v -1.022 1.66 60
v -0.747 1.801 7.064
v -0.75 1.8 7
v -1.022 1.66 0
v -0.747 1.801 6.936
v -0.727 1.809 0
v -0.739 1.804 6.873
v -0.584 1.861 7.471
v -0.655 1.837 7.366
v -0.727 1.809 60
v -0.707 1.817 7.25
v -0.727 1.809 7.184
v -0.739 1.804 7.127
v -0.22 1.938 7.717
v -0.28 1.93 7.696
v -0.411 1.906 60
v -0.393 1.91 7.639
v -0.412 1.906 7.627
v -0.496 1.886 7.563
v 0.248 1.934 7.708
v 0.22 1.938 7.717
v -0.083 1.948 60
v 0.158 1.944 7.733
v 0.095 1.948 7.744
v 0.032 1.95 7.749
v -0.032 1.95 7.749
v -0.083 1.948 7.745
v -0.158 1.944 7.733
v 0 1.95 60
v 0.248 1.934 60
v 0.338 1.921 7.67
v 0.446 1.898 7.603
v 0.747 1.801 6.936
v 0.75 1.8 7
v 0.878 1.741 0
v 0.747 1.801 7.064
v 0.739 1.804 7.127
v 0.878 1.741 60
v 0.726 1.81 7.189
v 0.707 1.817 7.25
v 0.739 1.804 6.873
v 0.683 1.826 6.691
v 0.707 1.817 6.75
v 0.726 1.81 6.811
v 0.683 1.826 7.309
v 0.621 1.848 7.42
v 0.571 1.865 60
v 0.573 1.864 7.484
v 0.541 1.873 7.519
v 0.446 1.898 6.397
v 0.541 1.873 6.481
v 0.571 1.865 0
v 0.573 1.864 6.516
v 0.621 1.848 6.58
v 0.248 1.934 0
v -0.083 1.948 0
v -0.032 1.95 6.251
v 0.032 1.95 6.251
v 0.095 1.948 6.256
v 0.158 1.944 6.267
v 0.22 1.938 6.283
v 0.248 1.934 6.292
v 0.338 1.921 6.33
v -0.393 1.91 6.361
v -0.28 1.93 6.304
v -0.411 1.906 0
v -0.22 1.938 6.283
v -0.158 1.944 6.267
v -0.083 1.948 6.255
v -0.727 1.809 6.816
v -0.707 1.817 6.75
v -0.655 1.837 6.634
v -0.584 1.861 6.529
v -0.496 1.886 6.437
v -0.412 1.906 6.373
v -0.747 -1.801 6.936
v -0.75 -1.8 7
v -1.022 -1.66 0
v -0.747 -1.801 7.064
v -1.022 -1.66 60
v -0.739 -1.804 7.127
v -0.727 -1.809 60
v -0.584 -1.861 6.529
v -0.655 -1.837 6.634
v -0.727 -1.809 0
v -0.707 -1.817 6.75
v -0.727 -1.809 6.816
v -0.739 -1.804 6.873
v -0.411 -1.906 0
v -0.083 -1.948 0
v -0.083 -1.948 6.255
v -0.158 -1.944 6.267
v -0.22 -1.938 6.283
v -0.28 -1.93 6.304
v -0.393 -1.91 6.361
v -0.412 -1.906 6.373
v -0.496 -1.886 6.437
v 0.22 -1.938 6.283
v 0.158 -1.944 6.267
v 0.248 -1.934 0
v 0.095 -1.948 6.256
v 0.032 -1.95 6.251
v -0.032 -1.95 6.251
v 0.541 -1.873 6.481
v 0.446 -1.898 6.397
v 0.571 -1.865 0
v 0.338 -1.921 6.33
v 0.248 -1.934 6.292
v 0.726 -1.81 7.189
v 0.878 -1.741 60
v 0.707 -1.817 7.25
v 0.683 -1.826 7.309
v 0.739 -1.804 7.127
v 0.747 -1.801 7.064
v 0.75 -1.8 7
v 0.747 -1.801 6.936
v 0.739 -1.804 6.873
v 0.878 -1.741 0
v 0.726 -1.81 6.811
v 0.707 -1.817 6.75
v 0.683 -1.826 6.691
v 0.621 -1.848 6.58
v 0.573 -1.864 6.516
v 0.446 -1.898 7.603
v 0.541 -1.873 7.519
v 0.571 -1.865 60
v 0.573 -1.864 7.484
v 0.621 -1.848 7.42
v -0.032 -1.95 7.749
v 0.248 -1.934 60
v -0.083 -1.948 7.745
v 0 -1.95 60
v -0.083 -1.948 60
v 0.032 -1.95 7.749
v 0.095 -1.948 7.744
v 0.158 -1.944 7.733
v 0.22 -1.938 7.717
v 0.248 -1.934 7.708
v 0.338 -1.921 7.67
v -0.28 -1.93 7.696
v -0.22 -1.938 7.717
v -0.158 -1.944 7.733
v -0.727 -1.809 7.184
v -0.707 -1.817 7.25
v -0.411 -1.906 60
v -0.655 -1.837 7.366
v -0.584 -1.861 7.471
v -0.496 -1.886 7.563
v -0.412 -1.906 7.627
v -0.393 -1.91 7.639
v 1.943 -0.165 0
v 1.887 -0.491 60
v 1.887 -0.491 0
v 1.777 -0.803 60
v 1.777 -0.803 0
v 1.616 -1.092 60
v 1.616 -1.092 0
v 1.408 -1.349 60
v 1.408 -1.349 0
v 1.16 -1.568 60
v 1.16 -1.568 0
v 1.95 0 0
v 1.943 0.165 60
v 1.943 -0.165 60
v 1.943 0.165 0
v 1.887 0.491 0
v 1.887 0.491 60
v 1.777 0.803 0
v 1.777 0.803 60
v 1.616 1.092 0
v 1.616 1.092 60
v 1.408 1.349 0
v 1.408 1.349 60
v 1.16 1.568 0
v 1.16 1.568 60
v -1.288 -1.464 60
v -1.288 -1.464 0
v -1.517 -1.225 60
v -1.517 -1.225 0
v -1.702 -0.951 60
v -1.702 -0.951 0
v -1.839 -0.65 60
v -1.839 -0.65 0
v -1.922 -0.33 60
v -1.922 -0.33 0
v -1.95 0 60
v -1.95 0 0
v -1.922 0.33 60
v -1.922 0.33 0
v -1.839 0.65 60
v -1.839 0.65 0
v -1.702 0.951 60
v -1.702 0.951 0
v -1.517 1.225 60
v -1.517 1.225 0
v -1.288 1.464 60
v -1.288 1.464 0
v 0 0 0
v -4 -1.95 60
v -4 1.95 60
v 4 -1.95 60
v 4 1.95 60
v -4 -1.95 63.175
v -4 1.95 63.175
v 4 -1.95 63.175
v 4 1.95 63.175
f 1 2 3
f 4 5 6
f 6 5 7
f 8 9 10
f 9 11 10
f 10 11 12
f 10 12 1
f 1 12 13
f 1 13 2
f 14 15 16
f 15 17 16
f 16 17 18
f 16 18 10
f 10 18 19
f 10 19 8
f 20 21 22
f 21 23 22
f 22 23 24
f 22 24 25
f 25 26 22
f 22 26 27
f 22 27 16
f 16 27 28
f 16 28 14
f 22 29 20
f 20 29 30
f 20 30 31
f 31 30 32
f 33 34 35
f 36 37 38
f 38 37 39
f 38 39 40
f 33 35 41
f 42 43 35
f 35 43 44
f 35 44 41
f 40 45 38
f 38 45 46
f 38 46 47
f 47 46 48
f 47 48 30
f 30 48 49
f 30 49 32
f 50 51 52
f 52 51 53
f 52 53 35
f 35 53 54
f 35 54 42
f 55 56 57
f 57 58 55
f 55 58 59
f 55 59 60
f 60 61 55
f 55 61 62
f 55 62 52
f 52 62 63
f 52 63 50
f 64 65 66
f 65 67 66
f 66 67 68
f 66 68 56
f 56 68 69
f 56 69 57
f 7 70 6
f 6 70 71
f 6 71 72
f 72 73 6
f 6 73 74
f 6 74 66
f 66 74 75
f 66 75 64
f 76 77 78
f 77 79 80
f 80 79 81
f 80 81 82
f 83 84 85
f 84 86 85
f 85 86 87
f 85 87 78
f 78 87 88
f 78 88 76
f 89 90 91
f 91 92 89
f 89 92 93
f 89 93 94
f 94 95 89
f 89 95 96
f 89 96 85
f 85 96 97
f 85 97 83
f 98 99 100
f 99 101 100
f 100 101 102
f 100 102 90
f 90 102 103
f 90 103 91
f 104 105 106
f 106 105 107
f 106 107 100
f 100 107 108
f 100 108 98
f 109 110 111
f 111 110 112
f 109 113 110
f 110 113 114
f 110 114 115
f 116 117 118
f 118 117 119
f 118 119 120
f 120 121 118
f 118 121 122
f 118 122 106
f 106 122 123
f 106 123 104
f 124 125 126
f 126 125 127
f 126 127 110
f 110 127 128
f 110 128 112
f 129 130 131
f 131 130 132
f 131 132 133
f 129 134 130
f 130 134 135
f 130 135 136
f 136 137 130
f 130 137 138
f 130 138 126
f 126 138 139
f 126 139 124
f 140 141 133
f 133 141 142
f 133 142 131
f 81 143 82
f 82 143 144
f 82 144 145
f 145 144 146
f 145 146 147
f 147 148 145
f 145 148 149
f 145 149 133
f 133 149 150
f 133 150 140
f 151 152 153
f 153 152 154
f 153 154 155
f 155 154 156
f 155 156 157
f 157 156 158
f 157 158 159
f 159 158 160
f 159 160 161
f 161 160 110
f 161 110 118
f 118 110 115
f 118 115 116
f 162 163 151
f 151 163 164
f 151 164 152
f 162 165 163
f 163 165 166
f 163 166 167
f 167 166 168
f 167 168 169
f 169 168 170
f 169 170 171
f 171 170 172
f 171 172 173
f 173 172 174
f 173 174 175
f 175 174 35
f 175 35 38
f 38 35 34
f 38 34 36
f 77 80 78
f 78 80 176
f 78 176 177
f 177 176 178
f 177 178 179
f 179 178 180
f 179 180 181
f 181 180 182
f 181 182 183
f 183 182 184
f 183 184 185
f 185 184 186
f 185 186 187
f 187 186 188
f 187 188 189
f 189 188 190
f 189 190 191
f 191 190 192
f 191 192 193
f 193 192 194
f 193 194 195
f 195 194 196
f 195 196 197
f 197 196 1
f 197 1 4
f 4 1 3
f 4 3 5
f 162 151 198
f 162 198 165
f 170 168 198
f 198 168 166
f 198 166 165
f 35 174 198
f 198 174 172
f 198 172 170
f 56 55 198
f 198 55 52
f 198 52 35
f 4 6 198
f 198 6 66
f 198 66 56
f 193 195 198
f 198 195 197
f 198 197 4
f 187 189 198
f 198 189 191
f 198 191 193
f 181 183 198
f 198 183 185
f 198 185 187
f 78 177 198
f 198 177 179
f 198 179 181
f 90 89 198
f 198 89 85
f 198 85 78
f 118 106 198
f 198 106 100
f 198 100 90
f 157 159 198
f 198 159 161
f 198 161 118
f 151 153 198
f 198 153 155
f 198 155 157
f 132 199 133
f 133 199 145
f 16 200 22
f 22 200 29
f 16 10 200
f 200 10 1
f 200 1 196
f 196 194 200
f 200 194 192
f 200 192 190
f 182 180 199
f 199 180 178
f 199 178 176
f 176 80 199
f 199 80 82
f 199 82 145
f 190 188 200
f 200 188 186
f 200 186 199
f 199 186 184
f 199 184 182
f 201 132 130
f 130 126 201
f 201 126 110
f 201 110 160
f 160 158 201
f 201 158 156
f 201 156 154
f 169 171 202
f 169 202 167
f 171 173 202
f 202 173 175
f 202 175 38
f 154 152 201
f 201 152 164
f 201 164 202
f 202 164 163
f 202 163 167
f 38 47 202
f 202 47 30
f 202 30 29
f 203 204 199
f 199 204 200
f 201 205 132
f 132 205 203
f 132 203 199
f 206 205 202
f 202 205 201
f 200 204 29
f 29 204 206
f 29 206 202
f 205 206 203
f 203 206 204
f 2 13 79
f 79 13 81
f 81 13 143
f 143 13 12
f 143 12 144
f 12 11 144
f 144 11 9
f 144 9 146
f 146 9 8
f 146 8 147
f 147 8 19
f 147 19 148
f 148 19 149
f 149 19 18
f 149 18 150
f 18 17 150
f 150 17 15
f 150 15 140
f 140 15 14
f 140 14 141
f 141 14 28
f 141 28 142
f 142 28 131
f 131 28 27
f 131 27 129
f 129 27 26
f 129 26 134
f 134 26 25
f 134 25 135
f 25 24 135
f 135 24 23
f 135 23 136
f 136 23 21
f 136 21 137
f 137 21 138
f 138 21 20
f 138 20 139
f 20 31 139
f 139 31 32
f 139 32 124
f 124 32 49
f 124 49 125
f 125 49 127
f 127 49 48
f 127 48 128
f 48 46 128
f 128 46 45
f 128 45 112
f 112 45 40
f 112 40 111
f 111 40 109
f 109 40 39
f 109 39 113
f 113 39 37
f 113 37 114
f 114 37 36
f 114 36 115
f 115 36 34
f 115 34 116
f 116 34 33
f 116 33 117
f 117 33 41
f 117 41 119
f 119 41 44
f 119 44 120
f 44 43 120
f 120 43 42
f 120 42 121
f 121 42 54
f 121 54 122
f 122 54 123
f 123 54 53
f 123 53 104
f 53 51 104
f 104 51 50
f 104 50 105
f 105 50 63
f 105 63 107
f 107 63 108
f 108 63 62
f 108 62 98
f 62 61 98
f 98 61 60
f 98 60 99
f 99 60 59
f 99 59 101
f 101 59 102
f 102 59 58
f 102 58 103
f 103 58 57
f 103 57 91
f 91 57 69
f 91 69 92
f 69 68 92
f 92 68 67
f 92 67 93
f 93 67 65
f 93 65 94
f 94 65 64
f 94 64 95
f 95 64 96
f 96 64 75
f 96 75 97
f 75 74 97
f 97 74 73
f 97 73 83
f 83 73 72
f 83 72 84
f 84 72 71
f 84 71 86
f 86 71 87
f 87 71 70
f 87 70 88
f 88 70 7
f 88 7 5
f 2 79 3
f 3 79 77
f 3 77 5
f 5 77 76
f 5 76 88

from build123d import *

# Parameters (mm, degrees)
SKETCH1_R           = 1.95
BOSS_EXTRUDE1_DEPTH = 60
SKETCH2_W           = 8
SKETCH2_H           = 3.9
BOSS_EXTRUDE2_DEPTH = 3.175
SKETCH3_R           = 0.75
CUT_EXTRUDE1_DEPTH  = 5


with BuildPart() as part:
    # Sketch1 → Boss-Extrude1 (new body)
    with BuildSketch(Plane.XY):
        Circle(SKETCH1_R)
    extrude(amount=BOSS_EXTRUDE1_DEPTH)

    # Sketch2 → Boss-Extrude2 (add)
    with BuildSketch(Plane.XY.offset(60)):
        Rectangle(SKETCH2_W, SKETCH2_H)
    extrude(amount=BOSS_EXTRUDE2_DEPTH)

    # Sketch3 → Cut-Extrude1 (cut)
    with BuildSketch(Plane(origin=(0, 1.95, 0), x_dir=(1, 0, 0), z_dir=(0, 1, 0))):
        with Locations((0, -7)):
            Circle(SKETCH3_R)
    extrude(amount=-CUT_EXTRUDE1_DEPTH, mode=Mode.SUBTRACT)


solid = part.part
